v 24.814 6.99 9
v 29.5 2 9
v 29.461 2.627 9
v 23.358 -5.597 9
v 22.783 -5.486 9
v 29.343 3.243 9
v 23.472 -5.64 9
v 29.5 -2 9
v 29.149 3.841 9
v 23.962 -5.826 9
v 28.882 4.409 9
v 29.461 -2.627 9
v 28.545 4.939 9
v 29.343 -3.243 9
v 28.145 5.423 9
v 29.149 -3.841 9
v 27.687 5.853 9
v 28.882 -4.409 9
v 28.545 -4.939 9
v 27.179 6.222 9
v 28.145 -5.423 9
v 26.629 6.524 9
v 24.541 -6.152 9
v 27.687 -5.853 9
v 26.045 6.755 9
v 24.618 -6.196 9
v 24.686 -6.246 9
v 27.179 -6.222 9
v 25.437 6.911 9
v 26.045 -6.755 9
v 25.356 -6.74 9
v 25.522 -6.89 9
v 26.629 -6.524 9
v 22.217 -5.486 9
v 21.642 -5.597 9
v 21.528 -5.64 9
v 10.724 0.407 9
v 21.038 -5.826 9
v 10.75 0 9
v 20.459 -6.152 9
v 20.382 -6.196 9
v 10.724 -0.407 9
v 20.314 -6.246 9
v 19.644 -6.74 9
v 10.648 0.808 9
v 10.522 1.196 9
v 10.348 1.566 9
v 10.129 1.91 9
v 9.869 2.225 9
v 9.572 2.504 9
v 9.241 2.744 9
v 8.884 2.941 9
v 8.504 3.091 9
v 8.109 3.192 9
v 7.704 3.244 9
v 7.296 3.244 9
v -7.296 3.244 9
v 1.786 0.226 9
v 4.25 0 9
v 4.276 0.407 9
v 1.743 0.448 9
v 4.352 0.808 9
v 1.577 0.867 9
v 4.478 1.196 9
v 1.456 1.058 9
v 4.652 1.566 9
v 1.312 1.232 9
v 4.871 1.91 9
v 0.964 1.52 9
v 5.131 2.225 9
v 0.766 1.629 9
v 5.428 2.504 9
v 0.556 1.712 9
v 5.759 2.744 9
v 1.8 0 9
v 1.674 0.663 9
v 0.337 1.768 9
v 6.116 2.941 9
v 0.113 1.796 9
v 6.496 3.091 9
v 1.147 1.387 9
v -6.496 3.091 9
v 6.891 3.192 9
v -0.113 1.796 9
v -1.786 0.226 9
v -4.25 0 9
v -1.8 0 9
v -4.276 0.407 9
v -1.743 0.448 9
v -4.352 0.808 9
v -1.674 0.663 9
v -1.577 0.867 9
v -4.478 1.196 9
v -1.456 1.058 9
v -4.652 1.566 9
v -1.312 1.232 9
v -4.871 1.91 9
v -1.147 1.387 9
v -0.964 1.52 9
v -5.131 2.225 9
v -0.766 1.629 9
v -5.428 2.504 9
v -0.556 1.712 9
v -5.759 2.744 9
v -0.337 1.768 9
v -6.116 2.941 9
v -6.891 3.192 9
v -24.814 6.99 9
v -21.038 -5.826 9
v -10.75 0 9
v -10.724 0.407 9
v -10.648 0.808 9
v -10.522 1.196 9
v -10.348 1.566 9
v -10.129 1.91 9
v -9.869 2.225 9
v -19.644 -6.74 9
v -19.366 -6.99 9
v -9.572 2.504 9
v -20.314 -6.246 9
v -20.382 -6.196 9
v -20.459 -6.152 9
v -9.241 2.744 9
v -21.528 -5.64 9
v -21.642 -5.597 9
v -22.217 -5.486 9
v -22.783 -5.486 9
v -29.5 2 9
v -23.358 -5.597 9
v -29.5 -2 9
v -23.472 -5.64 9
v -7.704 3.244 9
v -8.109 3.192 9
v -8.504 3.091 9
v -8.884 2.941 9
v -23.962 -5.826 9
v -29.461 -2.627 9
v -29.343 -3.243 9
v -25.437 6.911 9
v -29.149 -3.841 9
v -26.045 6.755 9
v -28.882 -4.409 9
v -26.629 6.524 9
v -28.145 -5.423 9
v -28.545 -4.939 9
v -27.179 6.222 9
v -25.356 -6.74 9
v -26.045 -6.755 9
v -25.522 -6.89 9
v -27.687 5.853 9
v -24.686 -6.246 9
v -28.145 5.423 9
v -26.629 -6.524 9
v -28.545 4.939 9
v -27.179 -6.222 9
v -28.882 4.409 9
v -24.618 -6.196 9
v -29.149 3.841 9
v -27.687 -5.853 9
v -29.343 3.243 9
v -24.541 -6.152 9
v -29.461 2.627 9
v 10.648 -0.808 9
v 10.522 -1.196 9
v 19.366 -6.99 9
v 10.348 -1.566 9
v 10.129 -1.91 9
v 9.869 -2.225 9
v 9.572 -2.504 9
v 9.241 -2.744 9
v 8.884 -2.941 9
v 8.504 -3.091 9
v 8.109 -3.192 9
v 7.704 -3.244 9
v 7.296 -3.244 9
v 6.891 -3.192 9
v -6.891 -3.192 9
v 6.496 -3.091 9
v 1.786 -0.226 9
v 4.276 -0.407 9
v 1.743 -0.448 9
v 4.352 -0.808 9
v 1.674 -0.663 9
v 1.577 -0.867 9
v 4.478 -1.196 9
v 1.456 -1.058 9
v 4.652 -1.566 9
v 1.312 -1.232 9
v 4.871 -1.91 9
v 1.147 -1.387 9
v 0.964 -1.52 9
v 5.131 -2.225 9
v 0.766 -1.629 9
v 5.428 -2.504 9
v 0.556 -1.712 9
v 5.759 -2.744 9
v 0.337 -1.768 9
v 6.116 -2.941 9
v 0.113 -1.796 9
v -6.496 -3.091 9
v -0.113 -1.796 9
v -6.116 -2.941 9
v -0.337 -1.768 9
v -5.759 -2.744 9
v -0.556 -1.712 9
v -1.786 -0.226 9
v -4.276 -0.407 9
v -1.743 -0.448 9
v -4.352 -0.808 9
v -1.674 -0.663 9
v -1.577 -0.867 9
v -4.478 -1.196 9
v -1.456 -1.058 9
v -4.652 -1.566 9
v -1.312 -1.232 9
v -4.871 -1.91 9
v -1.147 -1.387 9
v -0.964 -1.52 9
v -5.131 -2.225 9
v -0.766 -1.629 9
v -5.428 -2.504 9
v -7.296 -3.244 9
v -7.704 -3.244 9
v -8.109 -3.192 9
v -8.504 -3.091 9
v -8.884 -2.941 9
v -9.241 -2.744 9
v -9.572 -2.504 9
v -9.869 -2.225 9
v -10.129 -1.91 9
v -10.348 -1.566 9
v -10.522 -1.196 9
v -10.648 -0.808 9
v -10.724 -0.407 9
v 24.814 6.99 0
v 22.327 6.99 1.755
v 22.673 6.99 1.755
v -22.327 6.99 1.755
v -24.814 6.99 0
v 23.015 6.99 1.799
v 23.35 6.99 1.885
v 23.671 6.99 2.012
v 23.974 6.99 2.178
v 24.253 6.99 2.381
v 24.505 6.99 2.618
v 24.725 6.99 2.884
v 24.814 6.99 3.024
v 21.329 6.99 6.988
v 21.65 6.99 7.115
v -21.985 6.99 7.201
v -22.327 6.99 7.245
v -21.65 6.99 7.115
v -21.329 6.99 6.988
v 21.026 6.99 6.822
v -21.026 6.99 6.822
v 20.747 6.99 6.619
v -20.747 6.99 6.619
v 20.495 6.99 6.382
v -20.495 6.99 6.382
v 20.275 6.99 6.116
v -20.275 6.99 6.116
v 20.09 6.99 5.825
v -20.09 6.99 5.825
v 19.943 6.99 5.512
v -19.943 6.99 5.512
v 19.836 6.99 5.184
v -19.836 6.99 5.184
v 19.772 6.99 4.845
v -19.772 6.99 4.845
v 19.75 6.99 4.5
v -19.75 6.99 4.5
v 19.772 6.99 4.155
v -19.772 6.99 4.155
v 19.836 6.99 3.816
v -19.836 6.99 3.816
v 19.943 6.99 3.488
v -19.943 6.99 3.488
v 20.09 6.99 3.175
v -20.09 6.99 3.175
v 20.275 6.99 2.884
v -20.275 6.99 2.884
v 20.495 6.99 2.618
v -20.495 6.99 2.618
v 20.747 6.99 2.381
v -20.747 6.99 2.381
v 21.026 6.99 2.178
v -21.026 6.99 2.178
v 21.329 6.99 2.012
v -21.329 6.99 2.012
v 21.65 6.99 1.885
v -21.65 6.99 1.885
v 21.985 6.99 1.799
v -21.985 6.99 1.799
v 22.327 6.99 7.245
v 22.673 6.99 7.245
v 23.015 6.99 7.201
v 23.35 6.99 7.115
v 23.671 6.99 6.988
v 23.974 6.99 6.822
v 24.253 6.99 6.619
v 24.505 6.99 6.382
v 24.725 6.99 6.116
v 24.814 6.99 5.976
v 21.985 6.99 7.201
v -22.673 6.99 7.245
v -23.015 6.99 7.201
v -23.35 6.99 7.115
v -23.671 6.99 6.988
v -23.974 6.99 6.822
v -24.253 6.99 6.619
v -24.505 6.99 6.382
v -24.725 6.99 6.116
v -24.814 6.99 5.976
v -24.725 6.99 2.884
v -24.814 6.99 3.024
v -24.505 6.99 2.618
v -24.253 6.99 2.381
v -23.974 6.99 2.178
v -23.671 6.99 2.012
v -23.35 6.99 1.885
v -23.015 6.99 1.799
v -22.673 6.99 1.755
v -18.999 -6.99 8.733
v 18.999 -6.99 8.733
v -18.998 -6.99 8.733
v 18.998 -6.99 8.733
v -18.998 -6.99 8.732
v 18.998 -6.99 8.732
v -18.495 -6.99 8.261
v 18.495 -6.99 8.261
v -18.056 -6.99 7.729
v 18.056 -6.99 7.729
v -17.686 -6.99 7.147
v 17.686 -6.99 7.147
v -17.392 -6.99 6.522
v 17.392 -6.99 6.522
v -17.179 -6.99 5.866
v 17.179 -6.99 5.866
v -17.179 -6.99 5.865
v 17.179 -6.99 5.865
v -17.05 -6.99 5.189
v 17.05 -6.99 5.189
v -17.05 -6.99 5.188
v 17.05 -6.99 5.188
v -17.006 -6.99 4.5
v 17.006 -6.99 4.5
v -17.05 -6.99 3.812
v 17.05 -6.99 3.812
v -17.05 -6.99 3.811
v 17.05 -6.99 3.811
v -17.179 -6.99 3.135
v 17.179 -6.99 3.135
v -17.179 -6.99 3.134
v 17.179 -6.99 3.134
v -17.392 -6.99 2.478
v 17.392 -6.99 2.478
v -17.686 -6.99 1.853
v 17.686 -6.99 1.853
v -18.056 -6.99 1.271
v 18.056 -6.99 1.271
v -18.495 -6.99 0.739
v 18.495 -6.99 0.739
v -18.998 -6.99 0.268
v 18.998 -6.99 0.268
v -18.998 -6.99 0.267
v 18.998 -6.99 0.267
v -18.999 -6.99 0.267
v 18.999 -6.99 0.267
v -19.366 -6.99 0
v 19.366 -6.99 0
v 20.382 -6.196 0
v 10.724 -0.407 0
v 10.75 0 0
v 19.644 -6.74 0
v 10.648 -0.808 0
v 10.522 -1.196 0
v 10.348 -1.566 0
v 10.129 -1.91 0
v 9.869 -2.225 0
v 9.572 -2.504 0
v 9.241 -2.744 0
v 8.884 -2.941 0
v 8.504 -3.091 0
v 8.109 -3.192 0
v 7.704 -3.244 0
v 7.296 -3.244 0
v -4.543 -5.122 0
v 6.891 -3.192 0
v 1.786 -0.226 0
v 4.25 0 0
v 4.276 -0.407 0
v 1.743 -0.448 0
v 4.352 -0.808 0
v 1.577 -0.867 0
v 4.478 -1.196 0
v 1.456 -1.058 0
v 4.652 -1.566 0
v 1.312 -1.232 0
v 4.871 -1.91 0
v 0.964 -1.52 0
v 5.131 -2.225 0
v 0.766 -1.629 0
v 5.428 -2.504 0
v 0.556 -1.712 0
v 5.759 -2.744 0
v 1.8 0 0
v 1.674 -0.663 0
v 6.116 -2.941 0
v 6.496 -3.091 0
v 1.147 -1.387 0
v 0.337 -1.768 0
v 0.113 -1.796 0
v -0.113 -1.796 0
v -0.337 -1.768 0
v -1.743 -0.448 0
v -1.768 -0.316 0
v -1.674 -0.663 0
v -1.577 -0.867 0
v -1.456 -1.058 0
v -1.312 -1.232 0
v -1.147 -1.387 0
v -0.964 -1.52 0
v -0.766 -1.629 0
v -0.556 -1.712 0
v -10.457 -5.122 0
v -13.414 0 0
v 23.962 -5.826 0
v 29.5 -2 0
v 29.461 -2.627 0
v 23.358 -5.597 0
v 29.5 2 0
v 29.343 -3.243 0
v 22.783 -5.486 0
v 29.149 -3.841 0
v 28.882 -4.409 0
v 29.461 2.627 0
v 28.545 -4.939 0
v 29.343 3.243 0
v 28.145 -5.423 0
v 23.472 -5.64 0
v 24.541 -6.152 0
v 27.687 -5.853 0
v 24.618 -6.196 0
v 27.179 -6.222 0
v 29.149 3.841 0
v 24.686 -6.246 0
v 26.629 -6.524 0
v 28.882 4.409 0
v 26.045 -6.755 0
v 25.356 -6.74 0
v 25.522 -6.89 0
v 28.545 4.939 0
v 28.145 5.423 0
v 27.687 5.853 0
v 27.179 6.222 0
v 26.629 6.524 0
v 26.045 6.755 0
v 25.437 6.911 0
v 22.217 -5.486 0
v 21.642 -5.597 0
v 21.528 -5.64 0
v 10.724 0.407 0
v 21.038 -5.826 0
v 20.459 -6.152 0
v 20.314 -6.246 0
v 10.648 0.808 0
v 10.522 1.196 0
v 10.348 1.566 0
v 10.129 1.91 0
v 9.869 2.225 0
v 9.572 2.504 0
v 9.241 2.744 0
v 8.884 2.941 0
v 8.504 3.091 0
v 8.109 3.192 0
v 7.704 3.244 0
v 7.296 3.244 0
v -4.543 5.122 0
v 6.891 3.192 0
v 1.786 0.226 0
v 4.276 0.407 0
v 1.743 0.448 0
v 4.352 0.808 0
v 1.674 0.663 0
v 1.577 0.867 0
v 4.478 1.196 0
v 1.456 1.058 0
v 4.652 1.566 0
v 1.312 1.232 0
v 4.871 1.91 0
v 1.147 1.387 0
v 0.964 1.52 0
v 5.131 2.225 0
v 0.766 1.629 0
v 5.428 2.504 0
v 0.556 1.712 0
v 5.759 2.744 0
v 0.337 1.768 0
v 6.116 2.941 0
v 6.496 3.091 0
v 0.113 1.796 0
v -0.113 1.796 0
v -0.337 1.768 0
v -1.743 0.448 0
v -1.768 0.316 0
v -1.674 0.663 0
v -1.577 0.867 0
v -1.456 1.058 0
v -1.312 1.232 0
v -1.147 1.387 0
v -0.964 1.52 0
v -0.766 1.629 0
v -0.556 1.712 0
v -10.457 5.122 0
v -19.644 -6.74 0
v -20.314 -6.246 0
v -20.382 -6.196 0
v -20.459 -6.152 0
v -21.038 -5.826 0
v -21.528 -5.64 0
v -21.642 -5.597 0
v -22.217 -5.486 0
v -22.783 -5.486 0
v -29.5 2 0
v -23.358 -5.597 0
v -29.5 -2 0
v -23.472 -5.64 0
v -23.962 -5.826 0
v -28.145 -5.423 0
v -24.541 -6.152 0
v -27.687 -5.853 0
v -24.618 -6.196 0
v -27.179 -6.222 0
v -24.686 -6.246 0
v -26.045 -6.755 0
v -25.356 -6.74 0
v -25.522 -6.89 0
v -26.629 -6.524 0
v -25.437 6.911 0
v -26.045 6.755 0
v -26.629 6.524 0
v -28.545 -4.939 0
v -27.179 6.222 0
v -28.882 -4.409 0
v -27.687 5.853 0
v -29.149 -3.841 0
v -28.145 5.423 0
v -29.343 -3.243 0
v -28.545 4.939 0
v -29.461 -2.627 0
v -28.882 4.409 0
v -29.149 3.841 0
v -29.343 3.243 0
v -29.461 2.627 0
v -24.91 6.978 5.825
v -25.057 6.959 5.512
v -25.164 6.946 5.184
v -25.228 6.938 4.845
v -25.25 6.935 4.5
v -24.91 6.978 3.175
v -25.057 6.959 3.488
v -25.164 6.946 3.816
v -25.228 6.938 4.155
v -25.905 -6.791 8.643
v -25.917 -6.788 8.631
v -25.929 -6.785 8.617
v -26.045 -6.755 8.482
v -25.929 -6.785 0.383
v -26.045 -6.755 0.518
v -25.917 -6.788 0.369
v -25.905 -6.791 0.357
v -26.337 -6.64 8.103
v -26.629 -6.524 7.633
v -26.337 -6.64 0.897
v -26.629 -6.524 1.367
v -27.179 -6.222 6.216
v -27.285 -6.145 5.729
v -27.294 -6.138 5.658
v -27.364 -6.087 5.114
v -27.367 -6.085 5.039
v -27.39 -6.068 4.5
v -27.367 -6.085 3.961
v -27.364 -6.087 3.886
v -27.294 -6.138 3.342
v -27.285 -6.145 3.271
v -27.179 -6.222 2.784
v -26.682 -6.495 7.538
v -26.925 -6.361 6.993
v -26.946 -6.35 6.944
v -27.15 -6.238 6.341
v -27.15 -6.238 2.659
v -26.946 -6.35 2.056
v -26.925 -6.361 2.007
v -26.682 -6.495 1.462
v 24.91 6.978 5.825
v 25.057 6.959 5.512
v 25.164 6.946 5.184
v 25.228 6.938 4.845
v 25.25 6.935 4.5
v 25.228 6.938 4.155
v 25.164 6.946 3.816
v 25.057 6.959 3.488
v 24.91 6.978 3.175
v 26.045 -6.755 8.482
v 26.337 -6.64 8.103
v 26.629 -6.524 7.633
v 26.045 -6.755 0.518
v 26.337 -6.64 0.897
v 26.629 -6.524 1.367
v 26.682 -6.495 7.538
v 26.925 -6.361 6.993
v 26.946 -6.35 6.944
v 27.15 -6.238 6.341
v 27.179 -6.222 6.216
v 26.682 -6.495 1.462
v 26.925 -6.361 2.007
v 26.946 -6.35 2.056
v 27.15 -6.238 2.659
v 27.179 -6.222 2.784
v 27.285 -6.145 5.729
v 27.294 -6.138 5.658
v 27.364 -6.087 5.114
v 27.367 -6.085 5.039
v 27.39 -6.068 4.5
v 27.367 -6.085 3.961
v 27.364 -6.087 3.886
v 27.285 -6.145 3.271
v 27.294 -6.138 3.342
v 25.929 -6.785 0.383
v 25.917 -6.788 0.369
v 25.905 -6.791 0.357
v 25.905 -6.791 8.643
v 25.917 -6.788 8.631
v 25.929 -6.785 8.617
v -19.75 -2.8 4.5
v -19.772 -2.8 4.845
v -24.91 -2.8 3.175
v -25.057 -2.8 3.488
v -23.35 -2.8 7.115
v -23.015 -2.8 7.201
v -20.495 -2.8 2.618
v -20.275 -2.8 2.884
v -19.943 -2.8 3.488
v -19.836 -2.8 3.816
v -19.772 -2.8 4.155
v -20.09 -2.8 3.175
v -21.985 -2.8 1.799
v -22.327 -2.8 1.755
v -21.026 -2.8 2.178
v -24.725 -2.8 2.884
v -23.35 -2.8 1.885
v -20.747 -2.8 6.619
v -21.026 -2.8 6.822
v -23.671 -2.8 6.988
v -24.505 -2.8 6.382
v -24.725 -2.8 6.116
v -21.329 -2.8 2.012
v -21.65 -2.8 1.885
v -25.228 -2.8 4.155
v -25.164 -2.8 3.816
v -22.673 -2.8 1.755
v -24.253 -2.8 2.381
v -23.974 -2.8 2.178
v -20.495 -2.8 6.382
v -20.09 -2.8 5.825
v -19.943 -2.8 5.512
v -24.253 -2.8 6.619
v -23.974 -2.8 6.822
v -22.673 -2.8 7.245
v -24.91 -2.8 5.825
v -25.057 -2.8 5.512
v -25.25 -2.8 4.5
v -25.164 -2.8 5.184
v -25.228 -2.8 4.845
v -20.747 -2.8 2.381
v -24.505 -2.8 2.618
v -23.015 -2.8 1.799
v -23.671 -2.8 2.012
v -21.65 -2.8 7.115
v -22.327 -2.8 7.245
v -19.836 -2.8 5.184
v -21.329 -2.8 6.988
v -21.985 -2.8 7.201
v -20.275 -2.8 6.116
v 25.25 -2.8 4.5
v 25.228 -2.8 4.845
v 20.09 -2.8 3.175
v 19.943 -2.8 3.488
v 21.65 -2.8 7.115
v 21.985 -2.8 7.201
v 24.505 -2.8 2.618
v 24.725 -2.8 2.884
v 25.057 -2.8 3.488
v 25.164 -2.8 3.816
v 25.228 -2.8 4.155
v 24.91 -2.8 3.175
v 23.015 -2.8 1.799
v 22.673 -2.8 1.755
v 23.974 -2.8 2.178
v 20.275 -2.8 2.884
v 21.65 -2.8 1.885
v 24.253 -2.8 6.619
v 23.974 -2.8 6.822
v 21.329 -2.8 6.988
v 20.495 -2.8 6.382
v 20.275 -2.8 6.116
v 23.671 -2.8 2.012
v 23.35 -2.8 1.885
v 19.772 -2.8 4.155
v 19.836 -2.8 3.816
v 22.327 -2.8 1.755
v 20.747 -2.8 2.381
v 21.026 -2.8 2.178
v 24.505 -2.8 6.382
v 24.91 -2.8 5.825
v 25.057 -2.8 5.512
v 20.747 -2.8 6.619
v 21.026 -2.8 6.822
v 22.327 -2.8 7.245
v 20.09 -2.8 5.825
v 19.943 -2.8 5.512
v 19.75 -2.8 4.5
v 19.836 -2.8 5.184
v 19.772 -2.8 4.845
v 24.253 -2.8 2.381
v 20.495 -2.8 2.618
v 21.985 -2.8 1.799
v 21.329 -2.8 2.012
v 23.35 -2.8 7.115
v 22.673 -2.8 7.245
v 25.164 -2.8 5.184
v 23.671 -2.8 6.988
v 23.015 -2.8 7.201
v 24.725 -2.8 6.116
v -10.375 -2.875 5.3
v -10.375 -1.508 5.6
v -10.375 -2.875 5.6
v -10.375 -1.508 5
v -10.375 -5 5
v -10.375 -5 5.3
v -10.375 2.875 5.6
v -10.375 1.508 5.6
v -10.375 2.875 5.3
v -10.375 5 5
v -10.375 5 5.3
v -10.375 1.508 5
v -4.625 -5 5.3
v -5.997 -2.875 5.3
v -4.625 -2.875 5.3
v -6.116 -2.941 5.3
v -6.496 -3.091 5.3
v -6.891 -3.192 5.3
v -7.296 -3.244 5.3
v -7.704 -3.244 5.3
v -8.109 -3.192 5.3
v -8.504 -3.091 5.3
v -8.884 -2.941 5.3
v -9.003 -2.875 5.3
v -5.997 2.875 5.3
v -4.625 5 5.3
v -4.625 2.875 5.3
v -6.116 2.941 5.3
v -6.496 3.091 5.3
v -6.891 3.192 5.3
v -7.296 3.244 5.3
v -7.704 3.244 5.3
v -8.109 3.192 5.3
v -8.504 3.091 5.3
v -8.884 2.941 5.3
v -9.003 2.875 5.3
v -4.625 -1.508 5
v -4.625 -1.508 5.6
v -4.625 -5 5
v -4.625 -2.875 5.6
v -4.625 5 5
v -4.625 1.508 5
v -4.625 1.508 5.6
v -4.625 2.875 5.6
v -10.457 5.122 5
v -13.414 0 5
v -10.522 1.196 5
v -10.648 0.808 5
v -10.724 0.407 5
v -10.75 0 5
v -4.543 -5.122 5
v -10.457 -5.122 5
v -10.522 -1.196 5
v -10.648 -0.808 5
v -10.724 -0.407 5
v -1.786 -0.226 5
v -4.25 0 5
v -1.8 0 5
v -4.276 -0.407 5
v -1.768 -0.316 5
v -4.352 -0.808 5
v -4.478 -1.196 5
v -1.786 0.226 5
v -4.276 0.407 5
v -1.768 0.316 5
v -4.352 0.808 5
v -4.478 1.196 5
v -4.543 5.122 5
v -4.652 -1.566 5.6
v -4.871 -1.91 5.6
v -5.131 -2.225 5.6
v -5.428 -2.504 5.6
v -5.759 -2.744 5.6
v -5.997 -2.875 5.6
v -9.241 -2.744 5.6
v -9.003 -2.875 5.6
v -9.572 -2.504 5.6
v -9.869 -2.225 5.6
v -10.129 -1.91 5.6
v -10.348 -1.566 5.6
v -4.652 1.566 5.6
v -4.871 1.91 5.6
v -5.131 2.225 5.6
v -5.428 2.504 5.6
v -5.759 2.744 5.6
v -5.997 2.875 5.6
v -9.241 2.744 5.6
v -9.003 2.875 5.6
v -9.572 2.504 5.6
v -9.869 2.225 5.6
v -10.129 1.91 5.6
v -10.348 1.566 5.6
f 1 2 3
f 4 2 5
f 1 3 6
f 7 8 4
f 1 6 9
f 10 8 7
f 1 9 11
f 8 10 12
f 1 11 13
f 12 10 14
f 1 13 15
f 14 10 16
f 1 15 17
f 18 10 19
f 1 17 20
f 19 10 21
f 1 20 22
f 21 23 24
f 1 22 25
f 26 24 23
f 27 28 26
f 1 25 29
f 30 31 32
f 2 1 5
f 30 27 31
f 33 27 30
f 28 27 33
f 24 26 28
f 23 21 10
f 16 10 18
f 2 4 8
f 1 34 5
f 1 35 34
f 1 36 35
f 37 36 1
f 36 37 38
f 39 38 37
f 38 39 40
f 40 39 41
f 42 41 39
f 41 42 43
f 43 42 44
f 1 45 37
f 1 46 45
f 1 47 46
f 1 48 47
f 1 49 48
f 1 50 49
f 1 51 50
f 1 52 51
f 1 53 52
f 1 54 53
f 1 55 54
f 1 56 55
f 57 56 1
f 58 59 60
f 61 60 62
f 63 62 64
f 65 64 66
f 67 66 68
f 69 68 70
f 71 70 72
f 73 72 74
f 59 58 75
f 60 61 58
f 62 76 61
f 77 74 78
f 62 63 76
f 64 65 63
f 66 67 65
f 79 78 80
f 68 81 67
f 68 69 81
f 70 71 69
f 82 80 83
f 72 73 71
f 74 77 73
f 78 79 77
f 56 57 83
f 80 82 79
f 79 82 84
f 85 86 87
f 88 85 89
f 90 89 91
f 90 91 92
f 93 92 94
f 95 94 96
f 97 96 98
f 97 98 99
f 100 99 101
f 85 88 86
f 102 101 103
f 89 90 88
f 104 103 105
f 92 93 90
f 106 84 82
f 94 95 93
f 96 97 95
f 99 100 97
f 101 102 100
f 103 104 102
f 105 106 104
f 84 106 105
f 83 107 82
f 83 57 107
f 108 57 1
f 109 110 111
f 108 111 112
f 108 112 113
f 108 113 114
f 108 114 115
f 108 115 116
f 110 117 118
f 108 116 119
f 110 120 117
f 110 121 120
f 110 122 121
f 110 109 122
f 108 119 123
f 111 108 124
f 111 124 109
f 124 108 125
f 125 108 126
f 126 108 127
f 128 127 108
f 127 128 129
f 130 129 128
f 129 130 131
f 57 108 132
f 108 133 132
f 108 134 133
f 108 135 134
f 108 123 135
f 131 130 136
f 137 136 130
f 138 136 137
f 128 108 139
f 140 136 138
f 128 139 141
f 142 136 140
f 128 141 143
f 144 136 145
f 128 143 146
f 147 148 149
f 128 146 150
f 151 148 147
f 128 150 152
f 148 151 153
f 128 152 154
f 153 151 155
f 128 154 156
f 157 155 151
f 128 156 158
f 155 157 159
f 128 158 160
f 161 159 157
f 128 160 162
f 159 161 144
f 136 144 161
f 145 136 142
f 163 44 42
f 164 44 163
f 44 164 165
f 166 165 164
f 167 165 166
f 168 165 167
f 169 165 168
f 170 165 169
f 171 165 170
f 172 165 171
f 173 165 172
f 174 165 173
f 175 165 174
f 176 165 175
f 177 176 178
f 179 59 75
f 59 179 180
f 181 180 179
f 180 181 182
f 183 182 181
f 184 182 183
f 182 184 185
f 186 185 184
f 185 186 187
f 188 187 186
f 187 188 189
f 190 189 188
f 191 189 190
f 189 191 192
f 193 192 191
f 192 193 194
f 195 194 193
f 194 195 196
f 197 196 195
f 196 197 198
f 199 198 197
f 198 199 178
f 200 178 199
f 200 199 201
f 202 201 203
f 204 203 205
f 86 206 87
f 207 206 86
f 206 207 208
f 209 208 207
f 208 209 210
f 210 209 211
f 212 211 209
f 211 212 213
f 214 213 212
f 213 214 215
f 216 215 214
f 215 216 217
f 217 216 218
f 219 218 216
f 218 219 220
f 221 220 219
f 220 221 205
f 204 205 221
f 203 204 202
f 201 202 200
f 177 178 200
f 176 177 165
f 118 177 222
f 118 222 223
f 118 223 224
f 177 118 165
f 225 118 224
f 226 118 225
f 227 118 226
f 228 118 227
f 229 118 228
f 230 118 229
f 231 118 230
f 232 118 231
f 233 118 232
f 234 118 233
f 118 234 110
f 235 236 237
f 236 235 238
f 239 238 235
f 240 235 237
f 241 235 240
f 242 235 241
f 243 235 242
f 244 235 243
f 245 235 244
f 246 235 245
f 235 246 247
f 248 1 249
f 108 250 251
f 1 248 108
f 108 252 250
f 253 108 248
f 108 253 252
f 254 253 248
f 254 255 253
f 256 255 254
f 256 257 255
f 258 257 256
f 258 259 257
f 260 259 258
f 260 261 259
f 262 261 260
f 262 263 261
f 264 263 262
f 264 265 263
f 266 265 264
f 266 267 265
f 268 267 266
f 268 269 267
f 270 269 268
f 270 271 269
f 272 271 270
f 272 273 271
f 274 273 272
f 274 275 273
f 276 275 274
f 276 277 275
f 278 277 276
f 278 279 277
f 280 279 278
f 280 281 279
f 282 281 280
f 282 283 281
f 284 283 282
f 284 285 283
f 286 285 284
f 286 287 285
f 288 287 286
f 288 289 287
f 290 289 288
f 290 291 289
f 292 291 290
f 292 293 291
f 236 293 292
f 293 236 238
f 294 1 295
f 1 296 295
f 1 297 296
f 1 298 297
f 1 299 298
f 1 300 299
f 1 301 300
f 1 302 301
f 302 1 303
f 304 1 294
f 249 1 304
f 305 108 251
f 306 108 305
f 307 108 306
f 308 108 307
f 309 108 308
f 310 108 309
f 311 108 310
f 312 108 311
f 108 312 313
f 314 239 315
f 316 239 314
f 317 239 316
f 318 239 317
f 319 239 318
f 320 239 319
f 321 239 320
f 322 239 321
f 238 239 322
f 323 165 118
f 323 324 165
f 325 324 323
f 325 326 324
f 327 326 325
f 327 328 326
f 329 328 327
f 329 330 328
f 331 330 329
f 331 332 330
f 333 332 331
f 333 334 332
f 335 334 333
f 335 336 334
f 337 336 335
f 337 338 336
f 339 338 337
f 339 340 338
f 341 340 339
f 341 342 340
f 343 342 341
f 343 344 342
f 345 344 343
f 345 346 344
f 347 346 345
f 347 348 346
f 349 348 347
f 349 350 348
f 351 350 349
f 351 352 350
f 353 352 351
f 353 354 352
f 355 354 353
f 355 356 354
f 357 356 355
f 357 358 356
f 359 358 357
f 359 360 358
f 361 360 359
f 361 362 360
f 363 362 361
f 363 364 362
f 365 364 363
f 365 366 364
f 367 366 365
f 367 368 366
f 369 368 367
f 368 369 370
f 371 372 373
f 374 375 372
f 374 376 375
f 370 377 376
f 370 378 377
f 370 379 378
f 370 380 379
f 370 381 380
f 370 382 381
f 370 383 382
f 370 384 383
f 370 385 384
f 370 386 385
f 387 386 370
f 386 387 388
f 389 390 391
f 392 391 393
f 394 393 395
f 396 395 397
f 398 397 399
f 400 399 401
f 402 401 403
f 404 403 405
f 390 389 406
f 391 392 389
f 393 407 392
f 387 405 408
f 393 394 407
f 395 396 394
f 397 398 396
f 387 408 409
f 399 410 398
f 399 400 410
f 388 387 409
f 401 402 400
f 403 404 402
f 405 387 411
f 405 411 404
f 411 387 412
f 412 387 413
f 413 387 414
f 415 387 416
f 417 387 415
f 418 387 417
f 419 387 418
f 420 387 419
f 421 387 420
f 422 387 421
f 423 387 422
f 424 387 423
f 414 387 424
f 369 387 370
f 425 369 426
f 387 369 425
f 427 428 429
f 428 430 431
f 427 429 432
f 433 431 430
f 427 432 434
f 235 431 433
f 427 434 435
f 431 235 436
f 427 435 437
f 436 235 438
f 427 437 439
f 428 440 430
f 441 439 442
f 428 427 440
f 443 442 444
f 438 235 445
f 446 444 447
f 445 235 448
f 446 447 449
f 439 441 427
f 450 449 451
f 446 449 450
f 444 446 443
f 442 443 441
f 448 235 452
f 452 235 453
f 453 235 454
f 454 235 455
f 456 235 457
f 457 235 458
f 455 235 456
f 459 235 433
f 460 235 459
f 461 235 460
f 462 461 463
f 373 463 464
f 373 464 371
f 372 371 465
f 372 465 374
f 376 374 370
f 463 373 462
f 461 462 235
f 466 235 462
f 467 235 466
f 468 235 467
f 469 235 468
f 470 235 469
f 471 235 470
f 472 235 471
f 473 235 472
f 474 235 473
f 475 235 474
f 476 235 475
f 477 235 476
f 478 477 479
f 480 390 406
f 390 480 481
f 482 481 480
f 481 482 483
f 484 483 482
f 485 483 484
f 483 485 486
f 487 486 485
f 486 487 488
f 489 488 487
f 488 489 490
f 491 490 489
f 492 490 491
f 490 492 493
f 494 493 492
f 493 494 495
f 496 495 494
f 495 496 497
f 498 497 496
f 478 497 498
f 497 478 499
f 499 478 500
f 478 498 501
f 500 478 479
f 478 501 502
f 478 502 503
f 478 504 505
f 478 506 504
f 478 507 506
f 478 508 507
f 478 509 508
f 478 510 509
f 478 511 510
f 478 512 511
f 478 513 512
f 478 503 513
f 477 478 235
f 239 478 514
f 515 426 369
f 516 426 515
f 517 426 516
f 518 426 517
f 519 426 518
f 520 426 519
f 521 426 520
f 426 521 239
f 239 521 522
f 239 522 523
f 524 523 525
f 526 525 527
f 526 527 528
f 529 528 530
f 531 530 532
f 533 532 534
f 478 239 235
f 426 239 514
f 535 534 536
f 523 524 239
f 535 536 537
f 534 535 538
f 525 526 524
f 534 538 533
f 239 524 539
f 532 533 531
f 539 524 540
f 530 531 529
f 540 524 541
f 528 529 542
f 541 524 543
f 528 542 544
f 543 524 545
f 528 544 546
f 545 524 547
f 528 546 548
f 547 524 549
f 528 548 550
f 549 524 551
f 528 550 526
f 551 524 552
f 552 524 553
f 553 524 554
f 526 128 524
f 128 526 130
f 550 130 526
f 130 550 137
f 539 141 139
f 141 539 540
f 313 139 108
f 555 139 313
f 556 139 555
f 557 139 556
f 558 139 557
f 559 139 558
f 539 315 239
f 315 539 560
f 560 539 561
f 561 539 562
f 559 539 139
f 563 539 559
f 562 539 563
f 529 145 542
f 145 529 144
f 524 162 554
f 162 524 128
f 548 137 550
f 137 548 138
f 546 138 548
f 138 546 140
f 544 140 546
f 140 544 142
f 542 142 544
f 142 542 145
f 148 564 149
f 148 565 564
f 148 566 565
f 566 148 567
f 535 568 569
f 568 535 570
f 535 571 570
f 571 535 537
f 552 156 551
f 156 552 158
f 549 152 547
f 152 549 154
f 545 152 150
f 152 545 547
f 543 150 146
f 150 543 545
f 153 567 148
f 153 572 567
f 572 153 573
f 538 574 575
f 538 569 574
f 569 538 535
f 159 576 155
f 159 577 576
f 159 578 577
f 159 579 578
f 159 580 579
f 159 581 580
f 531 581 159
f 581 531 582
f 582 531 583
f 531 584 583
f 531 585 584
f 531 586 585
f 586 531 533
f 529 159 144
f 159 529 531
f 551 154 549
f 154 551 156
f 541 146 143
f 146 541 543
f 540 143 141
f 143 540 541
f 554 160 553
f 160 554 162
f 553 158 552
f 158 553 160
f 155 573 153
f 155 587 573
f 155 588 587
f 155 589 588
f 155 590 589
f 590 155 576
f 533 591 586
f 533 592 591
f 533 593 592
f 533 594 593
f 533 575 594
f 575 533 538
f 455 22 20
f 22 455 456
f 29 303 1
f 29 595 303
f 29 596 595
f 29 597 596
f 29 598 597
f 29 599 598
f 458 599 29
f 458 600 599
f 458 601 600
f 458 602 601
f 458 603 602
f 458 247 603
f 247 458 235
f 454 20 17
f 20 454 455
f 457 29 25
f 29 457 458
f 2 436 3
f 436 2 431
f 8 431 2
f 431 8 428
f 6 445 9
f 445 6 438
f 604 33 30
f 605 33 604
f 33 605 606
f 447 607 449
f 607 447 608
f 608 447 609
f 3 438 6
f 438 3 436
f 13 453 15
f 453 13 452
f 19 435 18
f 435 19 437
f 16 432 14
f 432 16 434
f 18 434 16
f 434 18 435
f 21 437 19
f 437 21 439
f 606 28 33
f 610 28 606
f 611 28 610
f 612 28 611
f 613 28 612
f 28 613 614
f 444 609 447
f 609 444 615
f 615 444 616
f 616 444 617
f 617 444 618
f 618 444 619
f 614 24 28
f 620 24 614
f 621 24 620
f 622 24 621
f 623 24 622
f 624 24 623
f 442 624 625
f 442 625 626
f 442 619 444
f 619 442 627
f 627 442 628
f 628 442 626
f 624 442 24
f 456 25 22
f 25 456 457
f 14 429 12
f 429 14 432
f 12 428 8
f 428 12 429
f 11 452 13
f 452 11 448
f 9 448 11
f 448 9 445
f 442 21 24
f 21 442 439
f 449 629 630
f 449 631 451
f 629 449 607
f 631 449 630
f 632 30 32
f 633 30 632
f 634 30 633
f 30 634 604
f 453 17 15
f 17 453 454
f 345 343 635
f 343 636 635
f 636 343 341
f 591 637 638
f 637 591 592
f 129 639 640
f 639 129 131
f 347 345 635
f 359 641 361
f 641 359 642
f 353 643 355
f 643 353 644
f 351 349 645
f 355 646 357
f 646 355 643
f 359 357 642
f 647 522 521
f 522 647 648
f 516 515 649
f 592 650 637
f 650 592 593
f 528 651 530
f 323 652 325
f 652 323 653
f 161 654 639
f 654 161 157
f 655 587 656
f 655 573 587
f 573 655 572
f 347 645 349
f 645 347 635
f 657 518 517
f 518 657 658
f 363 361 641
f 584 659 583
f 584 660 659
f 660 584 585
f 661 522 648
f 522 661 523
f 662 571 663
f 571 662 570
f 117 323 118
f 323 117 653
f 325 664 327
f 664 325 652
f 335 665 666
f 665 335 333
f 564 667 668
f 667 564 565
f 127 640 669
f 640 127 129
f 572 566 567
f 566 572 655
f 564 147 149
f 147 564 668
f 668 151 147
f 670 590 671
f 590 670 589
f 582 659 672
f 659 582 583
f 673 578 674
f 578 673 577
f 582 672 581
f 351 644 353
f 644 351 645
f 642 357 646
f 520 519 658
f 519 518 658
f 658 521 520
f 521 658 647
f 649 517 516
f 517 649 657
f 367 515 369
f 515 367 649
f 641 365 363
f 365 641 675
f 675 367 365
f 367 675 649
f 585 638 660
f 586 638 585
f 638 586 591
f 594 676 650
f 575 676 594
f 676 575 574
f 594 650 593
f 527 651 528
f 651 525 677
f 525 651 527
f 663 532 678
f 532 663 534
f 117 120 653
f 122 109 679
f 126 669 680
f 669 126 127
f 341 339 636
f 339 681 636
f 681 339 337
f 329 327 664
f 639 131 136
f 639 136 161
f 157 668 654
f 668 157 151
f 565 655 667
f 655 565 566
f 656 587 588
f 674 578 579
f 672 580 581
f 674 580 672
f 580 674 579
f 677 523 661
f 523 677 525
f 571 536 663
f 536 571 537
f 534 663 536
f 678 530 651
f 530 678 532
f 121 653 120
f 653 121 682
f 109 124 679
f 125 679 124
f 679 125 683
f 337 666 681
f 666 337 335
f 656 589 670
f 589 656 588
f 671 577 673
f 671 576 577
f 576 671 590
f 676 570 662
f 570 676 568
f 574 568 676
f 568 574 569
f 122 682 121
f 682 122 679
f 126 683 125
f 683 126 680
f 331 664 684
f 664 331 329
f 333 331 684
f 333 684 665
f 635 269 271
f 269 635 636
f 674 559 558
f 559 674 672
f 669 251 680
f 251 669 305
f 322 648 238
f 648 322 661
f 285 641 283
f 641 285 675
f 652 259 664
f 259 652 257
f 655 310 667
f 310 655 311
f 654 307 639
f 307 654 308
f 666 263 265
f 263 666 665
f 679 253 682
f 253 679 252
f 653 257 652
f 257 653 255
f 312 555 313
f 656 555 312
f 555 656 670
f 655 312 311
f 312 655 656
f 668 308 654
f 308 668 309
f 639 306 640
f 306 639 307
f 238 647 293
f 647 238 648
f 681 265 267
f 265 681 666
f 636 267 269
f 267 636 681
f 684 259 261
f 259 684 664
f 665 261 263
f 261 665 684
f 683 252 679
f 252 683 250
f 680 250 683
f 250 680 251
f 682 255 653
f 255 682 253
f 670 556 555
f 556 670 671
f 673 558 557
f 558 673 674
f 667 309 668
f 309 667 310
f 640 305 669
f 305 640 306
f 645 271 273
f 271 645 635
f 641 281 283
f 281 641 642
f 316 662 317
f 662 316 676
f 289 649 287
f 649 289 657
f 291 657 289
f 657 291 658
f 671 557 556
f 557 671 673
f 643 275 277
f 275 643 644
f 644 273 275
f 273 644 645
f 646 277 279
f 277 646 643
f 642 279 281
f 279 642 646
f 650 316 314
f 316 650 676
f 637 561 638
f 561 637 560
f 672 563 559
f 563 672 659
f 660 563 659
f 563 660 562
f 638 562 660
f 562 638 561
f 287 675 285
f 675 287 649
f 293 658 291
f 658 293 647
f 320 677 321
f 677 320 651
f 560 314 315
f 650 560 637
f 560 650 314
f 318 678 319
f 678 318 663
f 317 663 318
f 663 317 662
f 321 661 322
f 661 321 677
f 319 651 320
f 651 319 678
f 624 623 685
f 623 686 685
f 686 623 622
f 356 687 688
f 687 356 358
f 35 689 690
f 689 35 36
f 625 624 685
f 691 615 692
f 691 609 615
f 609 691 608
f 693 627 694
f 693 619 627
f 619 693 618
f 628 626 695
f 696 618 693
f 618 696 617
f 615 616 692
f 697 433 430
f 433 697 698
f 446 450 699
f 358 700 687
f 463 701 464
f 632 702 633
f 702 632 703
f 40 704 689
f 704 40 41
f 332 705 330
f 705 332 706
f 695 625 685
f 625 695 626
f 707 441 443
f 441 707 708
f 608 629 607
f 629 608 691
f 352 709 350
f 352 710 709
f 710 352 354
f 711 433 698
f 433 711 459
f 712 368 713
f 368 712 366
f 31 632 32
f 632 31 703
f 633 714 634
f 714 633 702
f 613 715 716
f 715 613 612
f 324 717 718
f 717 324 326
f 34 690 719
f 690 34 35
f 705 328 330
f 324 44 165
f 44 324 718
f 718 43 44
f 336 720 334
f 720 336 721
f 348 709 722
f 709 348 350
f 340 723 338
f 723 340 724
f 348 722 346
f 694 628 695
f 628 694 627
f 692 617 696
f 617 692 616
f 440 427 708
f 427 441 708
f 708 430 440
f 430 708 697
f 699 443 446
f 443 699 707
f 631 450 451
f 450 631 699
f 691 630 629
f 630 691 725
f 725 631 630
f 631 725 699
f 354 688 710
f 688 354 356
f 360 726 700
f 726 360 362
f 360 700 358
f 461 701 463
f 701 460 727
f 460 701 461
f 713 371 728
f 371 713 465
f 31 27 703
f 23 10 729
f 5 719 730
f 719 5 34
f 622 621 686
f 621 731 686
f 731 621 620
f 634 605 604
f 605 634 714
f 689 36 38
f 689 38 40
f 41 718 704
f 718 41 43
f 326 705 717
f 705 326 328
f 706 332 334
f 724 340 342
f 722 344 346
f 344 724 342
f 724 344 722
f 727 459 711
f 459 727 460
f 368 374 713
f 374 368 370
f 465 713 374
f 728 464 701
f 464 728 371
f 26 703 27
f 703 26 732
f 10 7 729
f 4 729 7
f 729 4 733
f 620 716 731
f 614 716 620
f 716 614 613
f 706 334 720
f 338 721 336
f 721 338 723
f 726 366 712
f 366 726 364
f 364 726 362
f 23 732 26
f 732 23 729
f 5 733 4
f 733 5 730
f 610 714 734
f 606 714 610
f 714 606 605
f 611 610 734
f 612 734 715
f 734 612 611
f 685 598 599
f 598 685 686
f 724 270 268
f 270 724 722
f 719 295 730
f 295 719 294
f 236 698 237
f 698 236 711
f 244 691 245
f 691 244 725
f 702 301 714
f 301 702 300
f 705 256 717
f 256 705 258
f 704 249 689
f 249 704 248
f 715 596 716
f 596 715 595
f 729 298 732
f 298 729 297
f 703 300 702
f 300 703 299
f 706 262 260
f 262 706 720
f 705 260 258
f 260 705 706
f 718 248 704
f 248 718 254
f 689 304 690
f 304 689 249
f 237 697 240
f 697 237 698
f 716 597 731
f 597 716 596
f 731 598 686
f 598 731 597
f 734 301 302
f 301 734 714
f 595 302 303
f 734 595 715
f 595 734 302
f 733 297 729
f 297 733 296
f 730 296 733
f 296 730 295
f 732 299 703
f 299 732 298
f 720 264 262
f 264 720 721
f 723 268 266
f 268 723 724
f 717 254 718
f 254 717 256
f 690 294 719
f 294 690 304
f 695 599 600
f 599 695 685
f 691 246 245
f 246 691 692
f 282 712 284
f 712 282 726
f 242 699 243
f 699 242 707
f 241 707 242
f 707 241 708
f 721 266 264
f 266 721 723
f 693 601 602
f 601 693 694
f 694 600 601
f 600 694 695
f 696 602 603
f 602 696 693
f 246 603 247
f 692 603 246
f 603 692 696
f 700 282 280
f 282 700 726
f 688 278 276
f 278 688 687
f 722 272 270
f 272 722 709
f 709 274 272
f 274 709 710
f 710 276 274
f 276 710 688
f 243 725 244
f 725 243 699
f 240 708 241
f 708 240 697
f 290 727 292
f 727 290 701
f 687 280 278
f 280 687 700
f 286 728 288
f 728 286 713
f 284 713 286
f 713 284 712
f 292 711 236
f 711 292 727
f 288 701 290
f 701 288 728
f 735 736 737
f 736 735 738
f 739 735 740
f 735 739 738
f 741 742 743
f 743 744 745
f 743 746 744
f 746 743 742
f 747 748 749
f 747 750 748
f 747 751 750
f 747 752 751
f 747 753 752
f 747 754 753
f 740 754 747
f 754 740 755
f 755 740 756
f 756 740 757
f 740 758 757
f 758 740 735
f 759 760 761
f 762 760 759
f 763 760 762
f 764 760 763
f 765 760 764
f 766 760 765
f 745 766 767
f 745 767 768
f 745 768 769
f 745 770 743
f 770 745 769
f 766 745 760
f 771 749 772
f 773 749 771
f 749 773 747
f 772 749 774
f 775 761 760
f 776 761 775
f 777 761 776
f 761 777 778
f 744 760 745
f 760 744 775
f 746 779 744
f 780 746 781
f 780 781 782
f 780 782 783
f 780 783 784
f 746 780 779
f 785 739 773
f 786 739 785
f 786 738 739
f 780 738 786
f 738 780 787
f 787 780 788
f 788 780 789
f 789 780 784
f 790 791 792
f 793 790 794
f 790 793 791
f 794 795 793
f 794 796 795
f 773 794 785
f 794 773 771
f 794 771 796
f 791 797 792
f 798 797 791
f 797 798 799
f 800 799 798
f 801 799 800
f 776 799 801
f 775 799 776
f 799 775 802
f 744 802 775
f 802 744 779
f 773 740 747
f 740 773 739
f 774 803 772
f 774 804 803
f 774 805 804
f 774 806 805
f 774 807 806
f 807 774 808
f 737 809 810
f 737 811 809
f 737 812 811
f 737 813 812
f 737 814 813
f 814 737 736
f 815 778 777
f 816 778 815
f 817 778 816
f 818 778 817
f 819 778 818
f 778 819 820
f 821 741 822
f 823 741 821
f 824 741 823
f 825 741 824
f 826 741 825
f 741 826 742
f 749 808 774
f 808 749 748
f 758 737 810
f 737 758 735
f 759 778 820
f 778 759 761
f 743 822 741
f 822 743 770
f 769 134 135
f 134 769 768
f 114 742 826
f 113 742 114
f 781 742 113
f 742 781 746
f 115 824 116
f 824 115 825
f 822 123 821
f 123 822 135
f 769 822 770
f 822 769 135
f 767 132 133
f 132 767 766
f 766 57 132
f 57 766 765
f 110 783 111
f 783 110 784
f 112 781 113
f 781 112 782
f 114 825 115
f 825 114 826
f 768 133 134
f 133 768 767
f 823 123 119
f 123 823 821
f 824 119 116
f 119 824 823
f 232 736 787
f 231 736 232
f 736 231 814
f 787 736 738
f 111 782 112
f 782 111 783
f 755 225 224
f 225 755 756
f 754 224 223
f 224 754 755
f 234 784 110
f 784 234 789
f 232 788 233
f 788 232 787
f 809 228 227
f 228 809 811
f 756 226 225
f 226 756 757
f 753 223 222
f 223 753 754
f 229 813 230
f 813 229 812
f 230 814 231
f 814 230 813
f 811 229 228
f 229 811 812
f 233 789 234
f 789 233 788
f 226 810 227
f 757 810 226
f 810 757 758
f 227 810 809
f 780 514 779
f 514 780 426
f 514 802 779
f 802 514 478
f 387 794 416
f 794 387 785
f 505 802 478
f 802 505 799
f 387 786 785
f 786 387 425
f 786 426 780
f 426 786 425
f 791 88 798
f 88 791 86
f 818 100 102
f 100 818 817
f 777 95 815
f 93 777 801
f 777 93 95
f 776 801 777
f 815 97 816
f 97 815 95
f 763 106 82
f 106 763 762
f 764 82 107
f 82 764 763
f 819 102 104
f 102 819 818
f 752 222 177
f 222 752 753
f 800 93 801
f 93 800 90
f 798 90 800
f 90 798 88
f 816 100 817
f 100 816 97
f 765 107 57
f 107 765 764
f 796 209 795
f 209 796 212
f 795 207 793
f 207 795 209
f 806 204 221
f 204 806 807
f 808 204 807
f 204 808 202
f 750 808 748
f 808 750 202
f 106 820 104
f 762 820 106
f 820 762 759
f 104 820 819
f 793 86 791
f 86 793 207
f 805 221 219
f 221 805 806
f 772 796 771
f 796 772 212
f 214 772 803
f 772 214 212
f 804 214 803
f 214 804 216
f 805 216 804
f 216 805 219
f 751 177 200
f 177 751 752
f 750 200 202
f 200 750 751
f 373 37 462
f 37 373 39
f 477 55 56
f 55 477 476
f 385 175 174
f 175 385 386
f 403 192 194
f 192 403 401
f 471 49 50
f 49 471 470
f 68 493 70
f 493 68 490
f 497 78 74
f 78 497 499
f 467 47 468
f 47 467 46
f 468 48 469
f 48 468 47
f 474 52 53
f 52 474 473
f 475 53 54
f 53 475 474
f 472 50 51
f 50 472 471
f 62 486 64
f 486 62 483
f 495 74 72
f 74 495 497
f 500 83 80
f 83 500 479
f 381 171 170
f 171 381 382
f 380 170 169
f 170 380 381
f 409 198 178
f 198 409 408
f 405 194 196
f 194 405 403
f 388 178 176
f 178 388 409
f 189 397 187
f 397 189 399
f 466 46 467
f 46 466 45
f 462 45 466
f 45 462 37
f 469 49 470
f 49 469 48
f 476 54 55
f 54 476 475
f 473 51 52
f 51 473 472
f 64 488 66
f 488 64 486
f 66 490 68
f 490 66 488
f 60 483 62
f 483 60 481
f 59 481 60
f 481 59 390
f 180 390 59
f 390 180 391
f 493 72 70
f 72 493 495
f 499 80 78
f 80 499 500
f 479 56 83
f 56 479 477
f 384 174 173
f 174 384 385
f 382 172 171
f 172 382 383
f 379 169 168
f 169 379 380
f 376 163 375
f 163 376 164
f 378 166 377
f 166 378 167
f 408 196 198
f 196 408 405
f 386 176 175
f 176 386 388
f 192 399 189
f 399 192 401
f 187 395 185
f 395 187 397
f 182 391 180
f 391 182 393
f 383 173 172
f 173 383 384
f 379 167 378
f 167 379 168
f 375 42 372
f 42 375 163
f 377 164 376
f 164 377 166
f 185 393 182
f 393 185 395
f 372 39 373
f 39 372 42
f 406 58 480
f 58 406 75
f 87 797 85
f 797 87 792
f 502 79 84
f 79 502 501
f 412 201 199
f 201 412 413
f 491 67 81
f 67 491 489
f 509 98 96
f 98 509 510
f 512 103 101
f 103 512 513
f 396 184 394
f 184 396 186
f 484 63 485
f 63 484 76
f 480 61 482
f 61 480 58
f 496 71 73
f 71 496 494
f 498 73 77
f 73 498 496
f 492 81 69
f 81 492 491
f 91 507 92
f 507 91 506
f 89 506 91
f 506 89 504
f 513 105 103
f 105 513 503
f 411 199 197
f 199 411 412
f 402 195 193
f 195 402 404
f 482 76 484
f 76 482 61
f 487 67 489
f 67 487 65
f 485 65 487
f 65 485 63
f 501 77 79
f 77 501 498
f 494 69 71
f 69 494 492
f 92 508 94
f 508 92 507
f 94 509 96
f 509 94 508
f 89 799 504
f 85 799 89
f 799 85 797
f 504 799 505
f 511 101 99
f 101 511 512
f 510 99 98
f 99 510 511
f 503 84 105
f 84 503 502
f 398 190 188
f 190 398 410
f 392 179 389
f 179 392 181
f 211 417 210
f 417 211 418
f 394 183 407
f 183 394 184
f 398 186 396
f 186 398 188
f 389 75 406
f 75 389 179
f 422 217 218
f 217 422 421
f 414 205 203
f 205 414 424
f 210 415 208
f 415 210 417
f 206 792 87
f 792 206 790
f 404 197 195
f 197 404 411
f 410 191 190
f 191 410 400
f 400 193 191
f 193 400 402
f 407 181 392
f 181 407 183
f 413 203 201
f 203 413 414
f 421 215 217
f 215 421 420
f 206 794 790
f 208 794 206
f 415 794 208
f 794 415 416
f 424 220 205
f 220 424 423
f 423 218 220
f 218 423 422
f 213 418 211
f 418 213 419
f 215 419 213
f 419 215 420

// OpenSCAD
$fn = 50;


difference() {
	union() {
		hull() {
			translate(v = [-9.5000000000, 2.0000000000, 0]) {
				cylinder(h = 9, r = 5);
			}
			translate(v = [9.5000000000, 2.0000000000, 0]) {
				cylinder(h = 9, r = 5);
			}
			translate(v = [-9.5000000000, -2.0000000000, 0]) {
				cylinder(h = 9, r = 5);
			}
			translate(v = [9.5000000000, -2.0000000000, 0]) {
				cylinder(h = 9, r = 5);
			}
		}
		translate(v = [-15.0000000000, 0.0000000000, 0]) {
			hull() {
				translate(v = [-9.5000000000, 2.0000000000, 0]) {
					cylinder(h = 9, r = 5);
				}
				translate(v = [9.5000000000, 2.0000000000, 0]) {
					cylinder(h = 9, r = 5);
				}
				translate(v = [-9.5000000000, -2.0000000000, 0]) {
					cylinder(h = 9, r = 5);
				}
				translate(v = [9.5000000000, -2.0000000000, 0]) {
					cylinder(h = 9, r = 5);
				}
			}
		}
		translate(v = [-15.0000000000, 0.0000000000, 0]) {
			hull() {
				translate(v = [-9.5000000000, 2.0000000000, 0]) {
					cylinder(h = 9, r = 5);
				}
				translate(v = [9.5000000000, 2.0000000000, 0]) {
					cylinder(h = 9, r = 5);
				}
				translate(v = [-9.5000000000, -2.0000000000, 0]) {
					cylinder(h = 9, r = 5);
				}
				translate(v = [9.5000000000, -2.0000000000, 0]) {
					cylinder(h = 9, r = 5);
				}
			}
		}
		translate(v = [15.0000000000, 0.0000000000, 0]) {
			hull() {
				translate(v = [-9.5000000000, 2.0000000000, 0]) {
					cylinder(h = 9, r = 5);
				}
				translate(v = [9.5000000000, 2.0000000000, 0]) {
					cylinder(h = 9, r = 5);
				}
				translate(v = [-9.5000000000, -2.0000000000, 0]) {
					cylinder(h = 9, r = 5);
				}
				translate(v = [9.5000000000, -2.0000000000, 0]) {
					cylinder(h = 9, r = 5);
				}
			}
		}
		translate(v = [15.0000000000, 0.0000000000, 0]) {
			hull() {
				translate(v = [-9.5000000000, 2.0000000000, 0]) {
					cylinder(h = 9, r = 5);
				}
				translate(v = [9.5000000000, 2.0000000000, 0]) {
					cylinder(h = 9, r = 5);
				}
				translate(v = [-9.5000000000, -2.0000000000, 0]) {
					cylinder(h = 9, r = 5);
				}
				translate(v = [9.5000000000, -2.0000000000, 0]) {
					cylinder(h = 9, r = 5);
				}
			}
		}
	}
	union() {
		translate(v = [-22.5000000000, -7.0000000000, 4.5000000000]) {
			rotate(a = [90, 0, 0]) {
				difference() {
					union() {
						#translate(v = [0, 0, -14.0000000000]) {
							cylinder(h = 14, r = 2.2500000000);
						}
						#translate(v = [0, 0, -4.2000000000]) {
							cylinder(h = 4.2000000000, r1 = 2.7500000000, r2 = 5.5000000000);
						}
						#translate(v = [0, 0, -14.0000000000]) {
							cylinder(h = 14, r = 2.7500000000);
						}
						#translate(v = [0, 0, -14.0000000000]) {
							cylinder(h = 14, r = 2.2500000000);
						}
					}
					union();
				}
			}
		}
		translate(v = [22.5000000000, -7.0000000000, 4.5000000000]) {
			rotate(a = [90, 0, 0]) {
				difference() {
					union() {
						#translate(v = [0, 0, -14.0000000000]) {
							cylinder(h = 14, r = 2.2500000000);
						}
						#translate(v = [0, 0, -4.2000000000]) {
							cylinder(h = 4.2000000000, r1 = 2.7500000000, r2 = 5.5000000000);
						}
						#translate(v = [0, 0, -14.0000000000]) {
							cylinder(h = 14, r = 2.7500000000);
						}
						#translate(v = [0, 0, -14.0000000000]) {
							cylinder(h = 14, r = 2.2500000000);
						}
					}
					union();
				}
			}
		}
		translate(v = [-7.5000000000, 0.0000000000, 0]) {
			rotate(a = [0, 0, 0]) {
				difference() {
					union() {
						#translate(v = [-2.8750000000, -5.0000000000, -0.3000000000]) {
							cube(size = [5.7500000000, 10, 0.3000000000]);
						}
						#translate(v = [-2.8750000000, -2.8750000000, -0.6000000000]) {
							cube(size = [5.7500000000, 5.7500000000, 0.3000000000]);
						}
						#translate(v = [-2.8750000000, -5.0000000000, 5]) {
							cube(size = [5.7500000000, 10, 0.3000000000]);
						}
						#translate(v = [-2.8750000000, -2.8750000000, 5.3000000000]) {
							cube(size = [5.7500000000, 5.7500000000, 0.3000000000]);
						}
						#translate(v = [0, 0, -100.0000000000]) {
							cylinder(h = 200, r = 3.2500000000);
						}
						#linear_extrude(height = 5) {
							polygon(points = [[5.9142500000, 0.0000000000], [2.9571250000, 5.1218907443], [-2.9571250000, 5.1218907443], [-5.9142500000, 0.0000000000], [-2.9571250000, -5.1218907443], [2.9571250000, -5.1218907443]]);
						}
						#translate(v = [-2.8750000000, -5.0000000000, -0.3000000000]) {
							cube(size = [5.7500000000, 10, 0.3000000000]);
						}
						#translate(v = [-2.8750000000, -2.8750000000, -0.6000000000]) {
							cube(size = [5.7500000000, 5.7500000000, 0.3000000000]);
						}
						#translate(v = [-2.8750000000, -5.0000000000, 5]) {
							cube(size = [5.7500000000, 10, 0.3000000000]);
						}
						#translate(v = [-2.8750000000, -2.8750000000, 5.3000000000]) {
							cube(size = [5.7500000000, 5.7500000000, 0.3000000000]);
						}
						#translate(v = [0, 0, -100.0000000000]) {
							cylinder(h = 200, r = 3.2500000000);
						}
						#translate(v = [-2.8750000000, -5.0000000000, -0.3000000000]) {
							cube(size = [5.7500000000, 10, 0.3000000000]);
						}
						#translate(v = [-2.8750000000, -2.8750000000, -0.6000000000]) {
							cube(size = [5.7500000000, 5.7500000000, 0.3000000000]);
						}
						#translate(v = [-2.8750000000, -5.0000000000, 5]) {
							cube(size = [5.7500000000, 10, 0.3000000000]);
						}
						#translate(v = [-2.8750000000, -2.8750000000, 5.3000000000]) {
							cube(size = [5.7500000000, 5.7500000000, 0.3000000000]);
						}
						#translate(v = [0, 0, -100.0000000000]) {
							cylinder(h = 200, r = 3.2500000000);
						}
					}
					union();
				}
			}
		}
		translate(v = [-7.5000000000, 0.0000000000, 0]) {
			translate(v = [0, 0, -100]) {
				cylinder(h = 200, r = 3.2500000000);
			}
		}
		translate(v = [7.5000000000, 0.0000000000, 0]) {
			translate(v = [0, 0, -100]) {
				cylinder(h = 200, r = 3.2500000000);
			}
		}
		translate(v = [-7.5000000000, 0.0000000000, 0]) {
			translate(v = [0, 0, -100]) {
				cylinder(h = 200, r = 1.8000000000);
			}
		}
		translate(v = [0, 0, -100]) {
			cylinder(h = 200, r = 1.8000000000);
		}
		translate(v = [7.5000000000, 0.0000000000, 0]) {
			translate(v = [0, 0, -100]) {
				cylinder(h = 200, r = 1.8000000000);
			}
		}
	}
}
